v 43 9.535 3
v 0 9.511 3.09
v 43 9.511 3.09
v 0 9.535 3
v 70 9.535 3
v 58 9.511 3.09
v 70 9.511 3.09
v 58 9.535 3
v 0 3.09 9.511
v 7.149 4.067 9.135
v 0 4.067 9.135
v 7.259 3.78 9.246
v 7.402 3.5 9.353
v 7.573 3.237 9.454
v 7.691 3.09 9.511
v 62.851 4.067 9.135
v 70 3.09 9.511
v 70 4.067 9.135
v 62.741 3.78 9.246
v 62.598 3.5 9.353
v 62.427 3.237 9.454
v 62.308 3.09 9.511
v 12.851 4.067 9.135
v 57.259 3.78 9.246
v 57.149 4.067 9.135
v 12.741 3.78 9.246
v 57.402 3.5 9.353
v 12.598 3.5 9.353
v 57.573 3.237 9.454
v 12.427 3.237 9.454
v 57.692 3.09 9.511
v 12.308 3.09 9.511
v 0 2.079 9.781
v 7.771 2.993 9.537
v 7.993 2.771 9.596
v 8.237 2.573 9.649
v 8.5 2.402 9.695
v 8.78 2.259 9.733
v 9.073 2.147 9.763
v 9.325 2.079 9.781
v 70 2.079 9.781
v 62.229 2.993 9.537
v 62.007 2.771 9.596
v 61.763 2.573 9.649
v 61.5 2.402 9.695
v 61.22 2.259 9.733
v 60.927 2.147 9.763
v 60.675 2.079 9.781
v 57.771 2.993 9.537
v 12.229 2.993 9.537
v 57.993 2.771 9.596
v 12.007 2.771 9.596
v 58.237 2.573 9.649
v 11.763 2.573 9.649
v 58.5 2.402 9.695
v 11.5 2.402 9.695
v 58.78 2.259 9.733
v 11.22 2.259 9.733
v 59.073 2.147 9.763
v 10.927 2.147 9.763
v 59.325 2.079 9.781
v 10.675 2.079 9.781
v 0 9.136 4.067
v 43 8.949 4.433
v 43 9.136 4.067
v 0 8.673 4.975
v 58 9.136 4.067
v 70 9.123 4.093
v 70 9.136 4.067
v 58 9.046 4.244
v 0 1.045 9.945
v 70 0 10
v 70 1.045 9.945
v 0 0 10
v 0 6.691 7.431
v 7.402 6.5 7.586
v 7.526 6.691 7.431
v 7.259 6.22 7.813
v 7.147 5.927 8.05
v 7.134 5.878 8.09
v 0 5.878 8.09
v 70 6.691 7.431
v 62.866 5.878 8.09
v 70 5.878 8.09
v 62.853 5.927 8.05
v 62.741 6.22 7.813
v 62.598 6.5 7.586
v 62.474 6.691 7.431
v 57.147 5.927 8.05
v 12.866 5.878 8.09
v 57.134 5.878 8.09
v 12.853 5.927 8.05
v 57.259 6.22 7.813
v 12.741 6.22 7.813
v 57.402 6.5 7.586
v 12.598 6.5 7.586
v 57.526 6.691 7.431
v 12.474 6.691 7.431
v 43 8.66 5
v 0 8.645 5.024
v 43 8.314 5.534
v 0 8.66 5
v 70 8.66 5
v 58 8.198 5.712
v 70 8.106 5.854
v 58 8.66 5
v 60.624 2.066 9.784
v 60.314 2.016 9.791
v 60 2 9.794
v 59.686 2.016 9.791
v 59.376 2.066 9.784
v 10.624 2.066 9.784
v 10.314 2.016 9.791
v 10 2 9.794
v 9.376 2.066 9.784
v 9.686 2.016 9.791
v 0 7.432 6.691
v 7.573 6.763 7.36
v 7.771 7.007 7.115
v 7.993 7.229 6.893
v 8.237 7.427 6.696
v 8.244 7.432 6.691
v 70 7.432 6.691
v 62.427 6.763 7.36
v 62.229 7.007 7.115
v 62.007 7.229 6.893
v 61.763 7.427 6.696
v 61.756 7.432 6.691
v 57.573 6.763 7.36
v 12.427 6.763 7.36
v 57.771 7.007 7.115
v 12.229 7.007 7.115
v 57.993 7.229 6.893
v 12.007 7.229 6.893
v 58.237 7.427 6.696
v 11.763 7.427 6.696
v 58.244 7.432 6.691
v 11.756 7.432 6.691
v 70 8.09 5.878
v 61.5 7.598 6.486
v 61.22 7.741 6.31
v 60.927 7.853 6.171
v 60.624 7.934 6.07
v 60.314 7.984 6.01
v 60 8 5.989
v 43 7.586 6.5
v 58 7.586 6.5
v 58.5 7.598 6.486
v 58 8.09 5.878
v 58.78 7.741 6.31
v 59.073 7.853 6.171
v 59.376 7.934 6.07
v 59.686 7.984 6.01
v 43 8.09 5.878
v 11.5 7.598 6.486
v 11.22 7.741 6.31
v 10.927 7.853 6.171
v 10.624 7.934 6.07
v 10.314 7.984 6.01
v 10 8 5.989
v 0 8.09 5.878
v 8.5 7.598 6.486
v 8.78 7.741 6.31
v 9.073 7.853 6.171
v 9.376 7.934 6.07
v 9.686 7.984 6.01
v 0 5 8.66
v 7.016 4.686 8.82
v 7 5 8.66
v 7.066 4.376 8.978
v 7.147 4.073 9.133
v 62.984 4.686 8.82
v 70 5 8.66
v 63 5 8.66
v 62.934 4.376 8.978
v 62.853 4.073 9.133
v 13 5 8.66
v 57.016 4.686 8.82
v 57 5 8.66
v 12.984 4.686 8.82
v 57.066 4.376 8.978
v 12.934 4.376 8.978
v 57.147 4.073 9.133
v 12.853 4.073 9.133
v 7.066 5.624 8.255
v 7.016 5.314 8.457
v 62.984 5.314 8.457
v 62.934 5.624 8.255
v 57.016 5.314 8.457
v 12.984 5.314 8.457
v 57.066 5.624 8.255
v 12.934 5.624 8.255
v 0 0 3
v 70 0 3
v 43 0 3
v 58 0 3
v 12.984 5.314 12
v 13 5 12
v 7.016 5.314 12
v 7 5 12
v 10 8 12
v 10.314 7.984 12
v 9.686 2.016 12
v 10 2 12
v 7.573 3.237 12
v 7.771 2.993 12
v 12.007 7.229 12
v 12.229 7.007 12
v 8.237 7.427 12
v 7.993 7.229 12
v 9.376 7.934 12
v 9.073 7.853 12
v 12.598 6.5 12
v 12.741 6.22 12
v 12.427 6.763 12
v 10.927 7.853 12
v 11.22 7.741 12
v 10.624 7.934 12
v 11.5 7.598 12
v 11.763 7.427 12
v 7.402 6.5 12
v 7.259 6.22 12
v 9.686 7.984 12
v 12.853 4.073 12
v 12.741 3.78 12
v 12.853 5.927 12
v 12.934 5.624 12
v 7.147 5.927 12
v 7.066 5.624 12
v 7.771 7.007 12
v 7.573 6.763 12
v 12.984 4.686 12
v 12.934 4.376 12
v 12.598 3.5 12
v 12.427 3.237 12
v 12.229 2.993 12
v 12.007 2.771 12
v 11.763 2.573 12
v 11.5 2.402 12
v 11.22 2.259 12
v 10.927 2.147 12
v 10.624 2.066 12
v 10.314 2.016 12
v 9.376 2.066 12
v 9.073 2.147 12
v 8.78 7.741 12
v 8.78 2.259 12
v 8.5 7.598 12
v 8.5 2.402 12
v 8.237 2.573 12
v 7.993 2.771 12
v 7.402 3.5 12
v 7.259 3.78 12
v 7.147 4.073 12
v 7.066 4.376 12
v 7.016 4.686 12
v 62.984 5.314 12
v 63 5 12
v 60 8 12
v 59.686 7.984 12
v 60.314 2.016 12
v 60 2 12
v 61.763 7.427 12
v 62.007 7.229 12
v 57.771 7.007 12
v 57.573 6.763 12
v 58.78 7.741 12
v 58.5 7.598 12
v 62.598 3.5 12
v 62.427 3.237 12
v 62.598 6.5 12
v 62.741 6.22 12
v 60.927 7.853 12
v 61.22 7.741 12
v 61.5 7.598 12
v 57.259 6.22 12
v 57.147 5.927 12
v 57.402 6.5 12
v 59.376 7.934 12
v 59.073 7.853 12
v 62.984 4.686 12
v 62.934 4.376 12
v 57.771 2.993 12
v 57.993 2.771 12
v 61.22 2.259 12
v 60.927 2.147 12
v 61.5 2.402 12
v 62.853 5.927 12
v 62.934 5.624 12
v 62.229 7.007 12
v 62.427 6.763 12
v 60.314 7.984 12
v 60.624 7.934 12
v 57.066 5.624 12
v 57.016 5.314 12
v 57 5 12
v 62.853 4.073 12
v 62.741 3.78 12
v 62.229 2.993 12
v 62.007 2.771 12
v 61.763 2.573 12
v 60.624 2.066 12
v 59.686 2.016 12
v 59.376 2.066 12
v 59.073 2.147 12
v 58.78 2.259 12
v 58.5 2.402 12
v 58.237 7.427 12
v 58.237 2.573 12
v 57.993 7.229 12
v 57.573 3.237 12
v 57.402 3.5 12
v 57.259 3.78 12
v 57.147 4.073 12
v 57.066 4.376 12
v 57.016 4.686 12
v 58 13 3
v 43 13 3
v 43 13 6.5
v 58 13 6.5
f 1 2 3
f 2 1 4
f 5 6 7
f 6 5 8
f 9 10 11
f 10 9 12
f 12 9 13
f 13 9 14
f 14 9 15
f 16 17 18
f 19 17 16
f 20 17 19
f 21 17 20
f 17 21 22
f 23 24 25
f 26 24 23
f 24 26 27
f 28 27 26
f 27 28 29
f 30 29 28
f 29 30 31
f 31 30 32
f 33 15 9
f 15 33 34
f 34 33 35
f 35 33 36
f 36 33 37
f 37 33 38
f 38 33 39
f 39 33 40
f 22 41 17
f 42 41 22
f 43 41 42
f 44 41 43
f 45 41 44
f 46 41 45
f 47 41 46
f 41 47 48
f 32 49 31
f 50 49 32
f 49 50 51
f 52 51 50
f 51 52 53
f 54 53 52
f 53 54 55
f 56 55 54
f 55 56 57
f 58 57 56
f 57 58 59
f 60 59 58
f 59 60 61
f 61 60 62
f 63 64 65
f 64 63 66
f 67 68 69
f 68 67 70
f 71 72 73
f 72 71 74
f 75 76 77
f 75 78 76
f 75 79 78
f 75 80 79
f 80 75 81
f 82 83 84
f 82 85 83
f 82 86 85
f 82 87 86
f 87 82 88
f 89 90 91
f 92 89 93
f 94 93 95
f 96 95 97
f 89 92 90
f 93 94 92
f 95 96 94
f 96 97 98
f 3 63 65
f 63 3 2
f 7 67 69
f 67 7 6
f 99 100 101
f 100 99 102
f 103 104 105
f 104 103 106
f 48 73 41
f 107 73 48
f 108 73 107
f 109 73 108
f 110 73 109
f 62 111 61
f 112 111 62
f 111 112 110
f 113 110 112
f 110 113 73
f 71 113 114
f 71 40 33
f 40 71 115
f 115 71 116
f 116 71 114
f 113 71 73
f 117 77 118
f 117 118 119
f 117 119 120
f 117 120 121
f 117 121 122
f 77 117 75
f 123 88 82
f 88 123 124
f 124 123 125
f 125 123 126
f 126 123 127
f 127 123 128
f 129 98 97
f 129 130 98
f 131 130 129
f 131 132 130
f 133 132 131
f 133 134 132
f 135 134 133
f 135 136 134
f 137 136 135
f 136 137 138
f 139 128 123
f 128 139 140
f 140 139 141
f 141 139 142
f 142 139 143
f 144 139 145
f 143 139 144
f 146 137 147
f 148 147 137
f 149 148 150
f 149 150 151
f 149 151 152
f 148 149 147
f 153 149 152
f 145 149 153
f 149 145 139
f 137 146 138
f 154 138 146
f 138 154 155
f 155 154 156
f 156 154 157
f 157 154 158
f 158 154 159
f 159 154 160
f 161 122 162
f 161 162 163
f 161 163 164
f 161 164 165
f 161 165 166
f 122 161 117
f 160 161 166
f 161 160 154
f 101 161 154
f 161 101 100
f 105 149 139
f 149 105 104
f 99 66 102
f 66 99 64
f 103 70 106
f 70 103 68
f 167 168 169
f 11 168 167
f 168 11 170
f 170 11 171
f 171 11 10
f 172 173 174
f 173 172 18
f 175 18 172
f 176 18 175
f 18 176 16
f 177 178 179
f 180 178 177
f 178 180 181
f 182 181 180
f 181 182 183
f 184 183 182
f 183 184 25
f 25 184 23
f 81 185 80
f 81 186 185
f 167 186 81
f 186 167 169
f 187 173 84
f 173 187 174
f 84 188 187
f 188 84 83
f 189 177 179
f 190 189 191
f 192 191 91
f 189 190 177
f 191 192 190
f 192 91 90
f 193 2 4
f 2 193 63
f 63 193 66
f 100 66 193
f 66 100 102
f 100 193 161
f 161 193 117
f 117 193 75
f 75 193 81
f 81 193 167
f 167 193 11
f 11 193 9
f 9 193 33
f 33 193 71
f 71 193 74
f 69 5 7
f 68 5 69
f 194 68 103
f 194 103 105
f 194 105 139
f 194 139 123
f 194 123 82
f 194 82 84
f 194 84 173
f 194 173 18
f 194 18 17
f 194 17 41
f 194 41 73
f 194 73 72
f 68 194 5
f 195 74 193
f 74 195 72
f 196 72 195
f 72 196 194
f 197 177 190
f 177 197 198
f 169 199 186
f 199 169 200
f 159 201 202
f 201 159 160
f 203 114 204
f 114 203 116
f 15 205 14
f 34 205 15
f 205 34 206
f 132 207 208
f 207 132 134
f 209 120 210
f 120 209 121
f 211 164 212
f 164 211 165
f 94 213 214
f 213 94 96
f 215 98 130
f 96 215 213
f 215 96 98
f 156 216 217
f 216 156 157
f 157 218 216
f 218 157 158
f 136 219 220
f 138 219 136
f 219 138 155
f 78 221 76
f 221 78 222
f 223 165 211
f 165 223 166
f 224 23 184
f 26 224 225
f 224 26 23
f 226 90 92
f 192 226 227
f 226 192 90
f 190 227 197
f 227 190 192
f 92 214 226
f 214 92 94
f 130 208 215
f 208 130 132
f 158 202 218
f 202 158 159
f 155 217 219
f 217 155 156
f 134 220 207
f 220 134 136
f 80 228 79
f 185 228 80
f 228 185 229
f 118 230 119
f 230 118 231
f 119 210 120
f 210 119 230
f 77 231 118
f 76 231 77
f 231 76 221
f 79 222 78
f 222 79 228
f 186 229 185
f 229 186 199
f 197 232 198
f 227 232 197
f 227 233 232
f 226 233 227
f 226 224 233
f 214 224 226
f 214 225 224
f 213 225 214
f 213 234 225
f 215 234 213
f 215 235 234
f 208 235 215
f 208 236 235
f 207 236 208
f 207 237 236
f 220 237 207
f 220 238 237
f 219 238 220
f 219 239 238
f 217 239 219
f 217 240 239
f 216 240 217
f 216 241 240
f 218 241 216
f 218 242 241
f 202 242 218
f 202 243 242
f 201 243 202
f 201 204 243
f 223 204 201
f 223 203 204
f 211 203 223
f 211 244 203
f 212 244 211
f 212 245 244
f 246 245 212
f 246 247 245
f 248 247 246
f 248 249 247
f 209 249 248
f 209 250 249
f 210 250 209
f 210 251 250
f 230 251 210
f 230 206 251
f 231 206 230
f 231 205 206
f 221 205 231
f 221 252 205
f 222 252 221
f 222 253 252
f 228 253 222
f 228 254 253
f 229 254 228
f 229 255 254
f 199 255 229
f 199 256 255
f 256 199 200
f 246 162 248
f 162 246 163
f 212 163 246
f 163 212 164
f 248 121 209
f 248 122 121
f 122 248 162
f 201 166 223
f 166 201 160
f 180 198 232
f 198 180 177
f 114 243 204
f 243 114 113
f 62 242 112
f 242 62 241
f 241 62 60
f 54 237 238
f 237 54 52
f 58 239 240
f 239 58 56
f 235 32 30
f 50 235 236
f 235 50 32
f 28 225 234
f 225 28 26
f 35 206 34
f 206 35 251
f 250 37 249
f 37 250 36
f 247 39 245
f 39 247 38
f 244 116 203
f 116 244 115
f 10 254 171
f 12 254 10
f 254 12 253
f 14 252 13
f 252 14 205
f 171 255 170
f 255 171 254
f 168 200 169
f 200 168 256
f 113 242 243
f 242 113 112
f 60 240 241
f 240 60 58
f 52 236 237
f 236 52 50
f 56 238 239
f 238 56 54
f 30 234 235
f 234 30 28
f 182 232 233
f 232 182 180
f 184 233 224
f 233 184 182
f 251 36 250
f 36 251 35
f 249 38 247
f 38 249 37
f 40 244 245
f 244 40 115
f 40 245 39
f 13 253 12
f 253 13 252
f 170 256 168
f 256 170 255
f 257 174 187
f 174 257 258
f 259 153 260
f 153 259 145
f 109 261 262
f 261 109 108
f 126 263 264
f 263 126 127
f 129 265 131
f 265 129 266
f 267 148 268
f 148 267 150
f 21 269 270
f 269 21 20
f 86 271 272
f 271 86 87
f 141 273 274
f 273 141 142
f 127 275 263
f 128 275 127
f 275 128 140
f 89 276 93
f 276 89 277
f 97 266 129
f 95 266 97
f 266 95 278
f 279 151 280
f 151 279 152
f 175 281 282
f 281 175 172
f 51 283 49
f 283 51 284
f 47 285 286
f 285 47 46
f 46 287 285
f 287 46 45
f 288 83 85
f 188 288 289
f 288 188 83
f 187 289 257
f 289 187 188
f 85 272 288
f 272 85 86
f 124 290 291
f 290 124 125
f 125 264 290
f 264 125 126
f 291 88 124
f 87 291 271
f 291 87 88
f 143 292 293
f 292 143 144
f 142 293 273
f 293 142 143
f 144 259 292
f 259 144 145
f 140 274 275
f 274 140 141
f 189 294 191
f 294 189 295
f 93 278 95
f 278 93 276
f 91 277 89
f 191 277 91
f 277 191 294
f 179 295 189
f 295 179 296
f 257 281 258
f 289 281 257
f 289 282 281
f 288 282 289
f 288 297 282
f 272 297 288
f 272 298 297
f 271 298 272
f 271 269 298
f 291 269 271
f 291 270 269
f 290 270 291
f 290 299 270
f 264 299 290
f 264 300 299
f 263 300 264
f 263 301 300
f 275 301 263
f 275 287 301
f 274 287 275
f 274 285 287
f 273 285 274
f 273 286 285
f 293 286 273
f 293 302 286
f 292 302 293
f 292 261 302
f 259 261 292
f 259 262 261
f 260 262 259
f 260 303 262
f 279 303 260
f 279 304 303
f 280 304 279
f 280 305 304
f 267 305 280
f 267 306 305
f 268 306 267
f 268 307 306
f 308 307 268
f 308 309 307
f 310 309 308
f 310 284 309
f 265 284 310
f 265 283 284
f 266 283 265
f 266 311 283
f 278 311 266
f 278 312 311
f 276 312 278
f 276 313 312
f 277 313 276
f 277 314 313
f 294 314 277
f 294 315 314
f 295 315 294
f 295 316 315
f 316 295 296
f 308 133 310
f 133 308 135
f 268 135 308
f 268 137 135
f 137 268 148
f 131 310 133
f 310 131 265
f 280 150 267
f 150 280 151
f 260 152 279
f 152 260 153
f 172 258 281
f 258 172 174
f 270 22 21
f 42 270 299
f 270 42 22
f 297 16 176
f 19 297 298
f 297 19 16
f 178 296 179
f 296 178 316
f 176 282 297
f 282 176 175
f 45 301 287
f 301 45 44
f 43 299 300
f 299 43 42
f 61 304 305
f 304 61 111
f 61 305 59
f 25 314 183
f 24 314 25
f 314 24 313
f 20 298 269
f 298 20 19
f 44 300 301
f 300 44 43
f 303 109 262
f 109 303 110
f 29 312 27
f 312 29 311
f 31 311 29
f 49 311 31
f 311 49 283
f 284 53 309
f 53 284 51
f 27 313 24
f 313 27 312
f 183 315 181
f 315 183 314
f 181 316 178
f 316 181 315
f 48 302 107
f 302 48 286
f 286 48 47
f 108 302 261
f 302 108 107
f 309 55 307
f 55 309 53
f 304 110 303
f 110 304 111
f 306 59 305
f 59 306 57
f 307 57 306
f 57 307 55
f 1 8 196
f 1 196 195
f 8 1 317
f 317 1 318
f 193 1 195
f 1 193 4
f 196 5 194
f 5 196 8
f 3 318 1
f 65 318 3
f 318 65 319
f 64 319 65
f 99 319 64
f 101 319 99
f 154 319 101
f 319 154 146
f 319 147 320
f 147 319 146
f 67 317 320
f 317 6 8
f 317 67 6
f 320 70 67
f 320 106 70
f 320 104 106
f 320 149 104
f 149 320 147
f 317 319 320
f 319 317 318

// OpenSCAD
$fn = 60;

fill_size = [70, 10, 10];

pin_radius = 3;
pin_height = 2;

module fillet(length=10, r=2) {
    difference() {
        cube([length, r, r]);

        translate([0, r, r])
        rotate([0, 90, 0])
            translate([0, 0, -1])
            cylinder(r=r, h=length+2);
    }
}


module pins() {
    translate([(fill_size[0]-50-pin_radius*2)/2+pin_radius, (fill_size[1]-pin_radius*2)/2+pin_radius, 0]) {
        cylinder(r=pin_radius, h=fill_size[1]+pin_height);
        translate([50, 0, 0])
            cylinder(r=pin_radius, h=fill_size[1]+pin_height);
        }
}

difference() {
    union () {
        difference() {
            cube(fill_size);
            
            translate([-1, fill_size[1]+.0001, fill_size[1]])
            rotate([180, 0, 0])
            fillet(length=fill_size[0]+2, r=fill_size[1]);
        }

        pins();
    }
    
    translate([-1, -1, -1])
        cube([fill_size[0]+2, fill_size[1]+2, 4]);
}

translate([fill_size[0]-27, 0, 3])
cube([15, 13, 3.5]);
